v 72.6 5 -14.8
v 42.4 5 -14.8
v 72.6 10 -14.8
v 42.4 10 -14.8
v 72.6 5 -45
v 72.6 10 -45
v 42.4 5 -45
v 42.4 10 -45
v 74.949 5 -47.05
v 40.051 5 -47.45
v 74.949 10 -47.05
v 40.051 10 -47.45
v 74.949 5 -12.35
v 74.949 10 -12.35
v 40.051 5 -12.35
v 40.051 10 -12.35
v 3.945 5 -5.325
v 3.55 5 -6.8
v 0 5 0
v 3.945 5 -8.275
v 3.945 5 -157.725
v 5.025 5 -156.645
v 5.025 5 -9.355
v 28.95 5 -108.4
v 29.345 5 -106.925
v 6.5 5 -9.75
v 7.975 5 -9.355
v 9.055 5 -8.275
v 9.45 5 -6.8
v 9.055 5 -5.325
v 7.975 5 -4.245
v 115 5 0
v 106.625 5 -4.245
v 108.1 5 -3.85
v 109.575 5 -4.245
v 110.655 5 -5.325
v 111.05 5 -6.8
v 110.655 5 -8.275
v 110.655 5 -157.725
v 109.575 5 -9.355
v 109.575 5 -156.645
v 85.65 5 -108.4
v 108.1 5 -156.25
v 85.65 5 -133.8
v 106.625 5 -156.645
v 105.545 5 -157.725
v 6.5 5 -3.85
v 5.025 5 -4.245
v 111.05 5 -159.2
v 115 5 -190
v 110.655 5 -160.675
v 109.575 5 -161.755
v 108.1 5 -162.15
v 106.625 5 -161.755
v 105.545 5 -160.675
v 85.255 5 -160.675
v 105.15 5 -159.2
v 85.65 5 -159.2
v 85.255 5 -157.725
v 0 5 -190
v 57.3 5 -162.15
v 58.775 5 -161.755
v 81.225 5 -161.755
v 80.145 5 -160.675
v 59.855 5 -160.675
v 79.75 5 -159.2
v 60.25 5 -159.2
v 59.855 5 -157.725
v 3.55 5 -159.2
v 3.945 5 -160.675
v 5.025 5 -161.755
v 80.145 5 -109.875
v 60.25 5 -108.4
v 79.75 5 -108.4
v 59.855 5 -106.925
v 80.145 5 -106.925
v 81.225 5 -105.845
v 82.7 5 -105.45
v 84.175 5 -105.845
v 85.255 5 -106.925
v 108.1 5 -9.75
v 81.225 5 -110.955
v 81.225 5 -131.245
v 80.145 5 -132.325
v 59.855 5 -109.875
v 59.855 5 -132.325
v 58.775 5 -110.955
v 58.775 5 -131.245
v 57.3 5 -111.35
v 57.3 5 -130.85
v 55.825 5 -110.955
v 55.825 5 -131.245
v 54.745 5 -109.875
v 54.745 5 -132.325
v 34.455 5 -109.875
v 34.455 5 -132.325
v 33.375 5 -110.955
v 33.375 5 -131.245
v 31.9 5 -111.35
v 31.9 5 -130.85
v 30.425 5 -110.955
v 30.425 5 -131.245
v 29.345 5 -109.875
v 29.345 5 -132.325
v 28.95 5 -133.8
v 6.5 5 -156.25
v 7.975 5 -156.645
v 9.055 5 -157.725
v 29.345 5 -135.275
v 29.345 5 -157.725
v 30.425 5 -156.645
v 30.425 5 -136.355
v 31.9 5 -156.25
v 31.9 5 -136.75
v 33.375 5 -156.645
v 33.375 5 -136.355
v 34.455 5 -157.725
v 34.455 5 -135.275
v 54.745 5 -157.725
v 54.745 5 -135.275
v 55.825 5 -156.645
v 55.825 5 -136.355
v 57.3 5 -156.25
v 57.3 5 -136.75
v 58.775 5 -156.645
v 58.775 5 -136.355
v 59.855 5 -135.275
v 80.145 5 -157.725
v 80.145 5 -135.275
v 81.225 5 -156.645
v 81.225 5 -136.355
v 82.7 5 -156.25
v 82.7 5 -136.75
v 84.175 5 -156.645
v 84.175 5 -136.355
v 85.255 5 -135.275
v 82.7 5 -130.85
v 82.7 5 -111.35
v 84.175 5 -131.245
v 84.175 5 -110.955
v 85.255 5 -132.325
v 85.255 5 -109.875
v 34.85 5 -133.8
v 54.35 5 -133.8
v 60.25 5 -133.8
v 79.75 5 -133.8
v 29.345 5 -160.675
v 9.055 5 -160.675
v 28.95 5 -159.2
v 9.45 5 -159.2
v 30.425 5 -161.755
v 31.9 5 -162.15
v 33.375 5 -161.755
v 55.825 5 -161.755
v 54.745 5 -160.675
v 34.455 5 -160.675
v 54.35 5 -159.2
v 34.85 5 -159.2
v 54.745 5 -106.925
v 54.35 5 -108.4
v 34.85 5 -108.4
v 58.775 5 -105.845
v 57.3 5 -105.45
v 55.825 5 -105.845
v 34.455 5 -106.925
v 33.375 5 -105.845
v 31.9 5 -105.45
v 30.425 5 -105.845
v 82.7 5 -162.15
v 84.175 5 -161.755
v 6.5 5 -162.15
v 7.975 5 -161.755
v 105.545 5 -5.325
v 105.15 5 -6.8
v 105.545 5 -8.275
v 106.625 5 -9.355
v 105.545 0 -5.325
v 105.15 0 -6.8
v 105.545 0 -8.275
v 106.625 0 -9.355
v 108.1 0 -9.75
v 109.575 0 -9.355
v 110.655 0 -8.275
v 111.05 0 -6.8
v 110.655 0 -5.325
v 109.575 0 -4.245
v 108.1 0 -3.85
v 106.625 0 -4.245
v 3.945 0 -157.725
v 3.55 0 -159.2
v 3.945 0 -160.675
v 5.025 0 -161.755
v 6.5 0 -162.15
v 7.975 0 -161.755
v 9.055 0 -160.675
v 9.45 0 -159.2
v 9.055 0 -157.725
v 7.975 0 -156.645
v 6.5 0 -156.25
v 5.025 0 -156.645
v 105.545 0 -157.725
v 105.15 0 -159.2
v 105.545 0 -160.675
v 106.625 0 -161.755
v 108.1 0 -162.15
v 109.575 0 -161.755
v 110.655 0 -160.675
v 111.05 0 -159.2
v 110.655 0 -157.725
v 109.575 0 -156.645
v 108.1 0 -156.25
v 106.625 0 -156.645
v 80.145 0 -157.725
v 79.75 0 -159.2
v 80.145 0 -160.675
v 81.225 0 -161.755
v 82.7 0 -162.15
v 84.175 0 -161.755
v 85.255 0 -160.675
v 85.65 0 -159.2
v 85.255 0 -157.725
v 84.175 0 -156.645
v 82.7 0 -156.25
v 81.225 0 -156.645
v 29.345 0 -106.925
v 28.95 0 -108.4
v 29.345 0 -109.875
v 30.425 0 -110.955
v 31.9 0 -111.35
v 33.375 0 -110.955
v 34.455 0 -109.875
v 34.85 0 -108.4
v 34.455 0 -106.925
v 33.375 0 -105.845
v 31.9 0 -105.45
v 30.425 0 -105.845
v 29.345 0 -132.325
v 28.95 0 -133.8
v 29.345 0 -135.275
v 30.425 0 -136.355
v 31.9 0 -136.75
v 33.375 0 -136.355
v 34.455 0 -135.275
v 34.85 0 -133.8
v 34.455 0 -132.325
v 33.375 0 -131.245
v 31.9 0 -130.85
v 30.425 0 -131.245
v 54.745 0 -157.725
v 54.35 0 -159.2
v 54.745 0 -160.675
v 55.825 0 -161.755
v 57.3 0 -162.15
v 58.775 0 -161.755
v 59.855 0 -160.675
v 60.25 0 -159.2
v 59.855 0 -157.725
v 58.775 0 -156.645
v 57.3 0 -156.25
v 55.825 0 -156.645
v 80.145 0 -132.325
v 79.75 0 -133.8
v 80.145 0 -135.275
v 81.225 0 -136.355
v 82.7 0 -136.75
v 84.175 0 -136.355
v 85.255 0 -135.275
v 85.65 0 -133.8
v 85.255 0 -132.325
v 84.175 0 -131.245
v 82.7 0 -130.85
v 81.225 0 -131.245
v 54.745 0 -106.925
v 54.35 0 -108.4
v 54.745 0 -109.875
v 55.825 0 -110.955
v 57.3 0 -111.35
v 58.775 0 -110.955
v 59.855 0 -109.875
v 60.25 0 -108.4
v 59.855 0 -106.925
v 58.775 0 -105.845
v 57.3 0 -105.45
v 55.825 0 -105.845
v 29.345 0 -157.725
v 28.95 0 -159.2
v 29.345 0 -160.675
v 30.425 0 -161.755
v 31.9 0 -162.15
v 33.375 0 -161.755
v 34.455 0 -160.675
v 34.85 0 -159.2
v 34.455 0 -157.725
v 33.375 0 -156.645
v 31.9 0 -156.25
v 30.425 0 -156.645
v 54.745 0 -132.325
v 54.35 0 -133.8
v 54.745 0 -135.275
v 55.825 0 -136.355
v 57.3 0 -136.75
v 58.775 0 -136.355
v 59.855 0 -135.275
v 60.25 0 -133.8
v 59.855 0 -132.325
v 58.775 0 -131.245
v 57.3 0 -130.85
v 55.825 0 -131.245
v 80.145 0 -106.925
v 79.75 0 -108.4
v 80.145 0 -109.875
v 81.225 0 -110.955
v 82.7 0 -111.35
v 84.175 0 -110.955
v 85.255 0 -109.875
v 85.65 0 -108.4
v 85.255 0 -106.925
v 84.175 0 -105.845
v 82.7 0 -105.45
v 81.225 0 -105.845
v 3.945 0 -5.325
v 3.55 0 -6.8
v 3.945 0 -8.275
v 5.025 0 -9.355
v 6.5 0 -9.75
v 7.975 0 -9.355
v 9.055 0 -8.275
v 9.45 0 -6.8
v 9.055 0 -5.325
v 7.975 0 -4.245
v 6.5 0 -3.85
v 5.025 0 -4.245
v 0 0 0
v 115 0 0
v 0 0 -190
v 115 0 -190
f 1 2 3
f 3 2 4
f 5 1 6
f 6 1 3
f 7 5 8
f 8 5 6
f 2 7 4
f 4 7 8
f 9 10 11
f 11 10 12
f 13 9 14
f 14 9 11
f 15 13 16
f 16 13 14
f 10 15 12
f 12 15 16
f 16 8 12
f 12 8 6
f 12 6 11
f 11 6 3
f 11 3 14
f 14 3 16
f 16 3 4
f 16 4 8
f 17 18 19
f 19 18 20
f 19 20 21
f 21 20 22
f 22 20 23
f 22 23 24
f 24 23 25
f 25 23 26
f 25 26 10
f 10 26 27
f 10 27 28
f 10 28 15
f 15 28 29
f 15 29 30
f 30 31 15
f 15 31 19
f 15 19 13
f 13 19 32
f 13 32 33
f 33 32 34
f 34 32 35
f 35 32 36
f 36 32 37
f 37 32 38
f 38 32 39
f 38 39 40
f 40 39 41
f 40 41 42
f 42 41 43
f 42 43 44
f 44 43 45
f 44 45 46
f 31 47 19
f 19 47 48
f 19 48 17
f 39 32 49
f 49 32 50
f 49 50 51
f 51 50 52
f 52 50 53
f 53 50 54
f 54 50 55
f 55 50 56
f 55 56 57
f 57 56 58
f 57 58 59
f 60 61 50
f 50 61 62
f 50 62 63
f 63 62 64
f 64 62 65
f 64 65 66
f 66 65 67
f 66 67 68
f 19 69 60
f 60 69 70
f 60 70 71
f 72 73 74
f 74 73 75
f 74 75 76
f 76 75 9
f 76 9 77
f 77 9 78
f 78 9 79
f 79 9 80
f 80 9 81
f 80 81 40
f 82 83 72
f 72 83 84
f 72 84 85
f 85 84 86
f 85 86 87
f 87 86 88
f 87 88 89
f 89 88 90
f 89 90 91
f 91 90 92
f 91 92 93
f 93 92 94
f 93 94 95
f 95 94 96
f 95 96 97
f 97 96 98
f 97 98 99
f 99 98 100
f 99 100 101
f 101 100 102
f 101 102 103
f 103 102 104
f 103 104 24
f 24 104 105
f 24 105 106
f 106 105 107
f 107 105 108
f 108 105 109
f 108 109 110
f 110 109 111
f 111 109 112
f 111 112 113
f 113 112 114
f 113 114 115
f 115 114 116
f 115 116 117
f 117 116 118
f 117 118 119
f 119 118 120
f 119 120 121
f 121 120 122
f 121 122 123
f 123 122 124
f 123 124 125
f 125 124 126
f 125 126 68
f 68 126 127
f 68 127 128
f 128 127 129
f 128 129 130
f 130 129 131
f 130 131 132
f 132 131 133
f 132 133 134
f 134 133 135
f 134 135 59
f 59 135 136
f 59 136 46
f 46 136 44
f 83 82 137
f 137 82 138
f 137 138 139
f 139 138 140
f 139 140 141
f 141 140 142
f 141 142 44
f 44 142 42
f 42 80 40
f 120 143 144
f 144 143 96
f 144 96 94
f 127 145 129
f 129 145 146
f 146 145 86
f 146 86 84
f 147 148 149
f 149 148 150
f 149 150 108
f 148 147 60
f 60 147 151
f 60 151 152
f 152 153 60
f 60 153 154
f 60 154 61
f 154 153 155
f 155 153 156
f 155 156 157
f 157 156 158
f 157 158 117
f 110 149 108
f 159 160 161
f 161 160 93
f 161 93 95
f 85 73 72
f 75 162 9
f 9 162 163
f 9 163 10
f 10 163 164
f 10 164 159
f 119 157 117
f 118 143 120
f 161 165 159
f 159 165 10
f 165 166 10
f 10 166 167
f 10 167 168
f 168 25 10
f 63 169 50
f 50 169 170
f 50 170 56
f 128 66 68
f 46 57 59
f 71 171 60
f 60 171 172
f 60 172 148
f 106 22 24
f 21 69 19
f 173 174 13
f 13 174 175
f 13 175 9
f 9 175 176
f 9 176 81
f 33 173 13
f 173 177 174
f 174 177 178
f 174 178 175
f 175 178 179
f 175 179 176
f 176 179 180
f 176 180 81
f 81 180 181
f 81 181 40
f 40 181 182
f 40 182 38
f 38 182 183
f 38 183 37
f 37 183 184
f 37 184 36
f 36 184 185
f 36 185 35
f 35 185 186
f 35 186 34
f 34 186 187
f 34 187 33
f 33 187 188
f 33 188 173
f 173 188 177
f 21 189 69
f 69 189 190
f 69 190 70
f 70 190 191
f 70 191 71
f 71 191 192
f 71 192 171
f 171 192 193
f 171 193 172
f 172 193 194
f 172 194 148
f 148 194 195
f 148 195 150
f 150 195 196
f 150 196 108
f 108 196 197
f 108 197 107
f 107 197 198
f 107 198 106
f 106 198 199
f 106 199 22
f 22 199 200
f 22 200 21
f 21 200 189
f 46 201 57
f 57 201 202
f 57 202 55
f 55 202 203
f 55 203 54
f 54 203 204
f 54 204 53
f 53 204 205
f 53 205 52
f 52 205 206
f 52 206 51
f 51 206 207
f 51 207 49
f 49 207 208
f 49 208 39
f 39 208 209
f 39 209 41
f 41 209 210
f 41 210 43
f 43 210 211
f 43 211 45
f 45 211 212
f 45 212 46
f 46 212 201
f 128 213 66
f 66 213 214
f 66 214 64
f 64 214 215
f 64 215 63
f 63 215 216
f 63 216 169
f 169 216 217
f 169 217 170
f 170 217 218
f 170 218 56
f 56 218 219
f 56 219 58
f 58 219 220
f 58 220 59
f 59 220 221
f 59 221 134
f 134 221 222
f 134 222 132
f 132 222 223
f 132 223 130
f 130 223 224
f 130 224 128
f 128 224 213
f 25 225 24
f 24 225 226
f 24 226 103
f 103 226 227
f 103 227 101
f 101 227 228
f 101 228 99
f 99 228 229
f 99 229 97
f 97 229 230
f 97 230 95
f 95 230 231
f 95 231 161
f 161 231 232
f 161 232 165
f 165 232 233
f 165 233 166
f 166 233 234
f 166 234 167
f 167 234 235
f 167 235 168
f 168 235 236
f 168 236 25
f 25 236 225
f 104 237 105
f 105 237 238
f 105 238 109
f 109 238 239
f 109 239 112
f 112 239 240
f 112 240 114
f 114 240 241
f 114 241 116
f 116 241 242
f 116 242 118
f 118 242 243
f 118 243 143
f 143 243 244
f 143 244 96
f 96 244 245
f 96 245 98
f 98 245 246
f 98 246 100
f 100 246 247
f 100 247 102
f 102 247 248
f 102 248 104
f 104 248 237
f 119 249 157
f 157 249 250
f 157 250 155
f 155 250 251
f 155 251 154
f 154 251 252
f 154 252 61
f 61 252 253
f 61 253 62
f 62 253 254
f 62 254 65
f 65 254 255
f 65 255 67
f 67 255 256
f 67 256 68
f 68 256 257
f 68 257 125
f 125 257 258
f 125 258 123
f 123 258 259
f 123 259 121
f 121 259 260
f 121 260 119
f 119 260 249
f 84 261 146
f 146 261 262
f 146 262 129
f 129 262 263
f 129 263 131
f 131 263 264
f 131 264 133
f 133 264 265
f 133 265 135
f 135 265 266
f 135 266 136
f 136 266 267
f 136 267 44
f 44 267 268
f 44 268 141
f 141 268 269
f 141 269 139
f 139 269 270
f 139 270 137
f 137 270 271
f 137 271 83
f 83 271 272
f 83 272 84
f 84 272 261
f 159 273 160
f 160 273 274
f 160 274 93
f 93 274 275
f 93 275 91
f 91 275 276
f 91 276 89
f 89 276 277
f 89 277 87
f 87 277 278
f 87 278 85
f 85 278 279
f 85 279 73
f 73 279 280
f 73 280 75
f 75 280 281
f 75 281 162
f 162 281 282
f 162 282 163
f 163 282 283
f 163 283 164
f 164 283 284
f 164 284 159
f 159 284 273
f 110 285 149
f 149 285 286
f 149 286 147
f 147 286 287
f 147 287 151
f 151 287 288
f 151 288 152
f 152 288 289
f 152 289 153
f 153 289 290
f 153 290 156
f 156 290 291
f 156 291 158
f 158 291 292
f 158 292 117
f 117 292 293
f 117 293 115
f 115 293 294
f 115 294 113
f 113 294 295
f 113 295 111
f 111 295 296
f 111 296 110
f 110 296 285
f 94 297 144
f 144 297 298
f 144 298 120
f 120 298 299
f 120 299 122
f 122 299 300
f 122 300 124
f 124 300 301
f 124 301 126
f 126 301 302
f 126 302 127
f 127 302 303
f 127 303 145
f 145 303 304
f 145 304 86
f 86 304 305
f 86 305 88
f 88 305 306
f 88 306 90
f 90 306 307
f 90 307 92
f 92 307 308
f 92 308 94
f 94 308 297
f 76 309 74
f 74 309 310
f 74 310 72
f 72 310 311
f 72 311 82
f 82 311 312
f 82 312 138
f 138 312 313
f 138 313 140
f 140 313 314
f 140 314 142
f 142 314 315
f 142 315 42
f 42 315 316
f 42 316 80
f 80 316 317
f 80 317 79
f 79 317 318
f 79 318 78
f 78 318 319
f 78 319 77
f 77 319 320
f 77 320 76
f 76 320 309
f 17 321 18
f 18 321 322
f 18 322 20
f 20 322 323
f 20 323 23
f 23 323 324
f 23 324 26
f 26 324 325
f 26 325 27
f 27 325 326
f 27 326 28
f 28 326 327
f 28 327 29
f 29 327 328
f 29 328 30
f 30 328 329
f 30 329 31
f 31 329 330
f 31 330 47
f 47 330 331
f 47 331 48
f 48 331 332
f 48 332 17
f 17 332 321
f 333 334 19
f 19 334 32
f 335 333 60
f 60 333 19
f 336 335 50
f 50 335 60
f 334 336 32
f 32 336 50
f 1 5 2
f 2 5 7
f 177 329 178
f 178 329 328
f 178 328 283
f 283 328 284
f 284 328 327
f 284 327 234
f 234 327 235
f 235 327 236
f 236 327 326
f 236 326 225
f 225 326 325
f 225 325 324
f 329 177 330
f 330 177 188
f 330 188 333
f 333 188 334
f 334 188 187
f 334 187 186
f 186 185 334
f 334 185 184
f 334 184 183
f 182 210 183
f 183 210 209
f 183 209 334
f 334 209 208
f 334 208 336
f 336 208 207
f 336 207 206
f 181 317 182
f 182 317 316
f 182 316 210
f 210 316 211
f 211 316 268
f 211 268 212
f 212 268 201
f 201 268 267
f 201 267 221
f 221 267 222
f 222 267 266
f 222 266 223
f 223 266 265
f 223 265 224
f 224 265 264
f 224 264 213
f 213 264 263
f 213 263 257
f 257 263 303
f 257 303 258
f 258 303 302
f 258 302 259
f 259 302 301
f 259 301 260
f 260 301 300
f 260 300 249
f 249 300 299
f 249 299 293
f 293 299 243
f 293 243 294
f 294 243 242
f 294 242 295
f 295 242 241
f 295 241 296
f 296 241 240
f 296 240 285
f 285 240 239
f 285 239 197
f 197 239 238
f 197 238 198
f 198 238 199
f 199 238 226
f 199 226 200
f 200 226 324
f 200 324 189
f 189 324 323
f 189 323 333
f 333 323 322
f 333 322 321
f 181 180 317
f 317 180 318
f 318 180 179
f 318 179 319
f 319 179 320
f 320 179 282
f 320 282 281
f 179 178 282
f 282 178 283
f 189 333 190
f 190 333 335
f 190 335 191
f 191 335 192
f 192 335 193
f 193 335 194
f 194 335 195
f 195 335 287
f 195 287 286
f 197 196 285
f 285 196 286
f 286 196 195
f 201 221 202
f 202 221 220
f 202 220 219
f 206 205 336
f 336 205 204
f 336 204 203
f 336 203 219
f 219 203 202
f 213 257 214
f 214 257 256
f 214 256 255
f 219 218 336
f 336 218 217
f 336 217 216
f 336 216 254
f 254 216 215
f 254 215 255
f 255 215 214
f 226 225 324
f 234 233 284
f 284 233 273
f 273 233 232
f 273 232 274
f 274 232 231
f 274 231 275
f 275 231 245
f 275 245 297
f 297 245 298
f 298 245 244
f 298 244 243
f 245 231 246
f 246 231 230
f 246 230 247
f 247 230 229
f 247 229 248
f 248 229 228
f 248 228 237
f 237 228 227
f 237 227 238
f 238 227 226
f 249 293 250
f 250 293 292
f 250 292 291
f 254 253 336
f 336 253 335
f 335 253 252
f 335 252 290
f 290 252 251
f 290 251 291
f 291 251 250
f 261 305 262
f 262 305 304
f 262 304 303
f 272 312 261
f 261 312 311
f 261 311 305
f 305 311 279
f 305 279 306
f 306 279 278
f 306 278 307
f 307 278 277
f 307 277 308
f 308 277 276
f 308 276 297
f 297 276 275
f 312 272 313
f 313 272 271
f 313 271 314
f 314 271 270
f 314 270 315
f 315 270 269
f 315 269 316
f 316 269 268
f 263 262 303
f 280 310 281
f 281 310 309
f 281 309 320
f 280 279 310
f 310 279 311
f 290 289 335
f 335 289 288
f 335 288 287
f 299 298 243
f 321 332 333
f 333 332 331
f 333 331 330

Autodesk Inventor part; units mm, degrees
ref_plane "YZ Plane" through (0, 0, 0) normal (1, 0, 0) x (0, 1, 0)
ref_plane "XZ Plane" through (0, 0, 0) normal (0, 1, 0) x (-1, 0, 0)
ref_plane "XY Plane" through (0, 0, 0) normal (0, 0, 1) x (1, 0, 0)
sketch "스케치1" plane through (0, 0, 0) normal (0, 1, 0) x (-1, 0, 0)
  line L0 (0, 0) -> (-115, 0)
  line L1 (-115, 0) -> (-115, -190)
  line L2 (-115, -190) -> (0, -190)
  line L3 (0, -190) -> (0, 0)
  circle A0 centre (-6.5, -6.8) radius 2.95
  line L4 (0, -95) -> (-115, -95) construction
  line L5 (-57.5, 0) -> (-57.5, -190) construction
  circle A1 centre (-6.5, -183.2) radius 2.95
  circle A2 centre (-6.5, -32.2) radius 2.95
  circle A3 centre (-6.5, -57.6) radius 2.95
  circle A4 centre (-6.5, -83) radius 2.95
  circle A5 centre (-6.5, -108.4) radius 2.95
  circle A6 centre (-6.5, -133.8) radius 2.95
  circle A7 centre (-6.5, -159.2) radius 2.95
  circle A8 centre (-31.9, -6.8) radius 2.95
  circle A9 centre (-31.9, -32.2) radius 2.95
  circle A10 centre (-31.9, -57.6) radius 2.95
  circle A11 centre (-31.9, -83) radius 2.95
  circle A12 centre (-31.9, -108.4) radius 2.95
  circle A13 centre (-31.9, -133.8) radius 2.95
  circle A14 centre (-31.9, -159.2) radius 2.95
  circle A15 centre (-57.3, -6.8) radius 2.95
  circle A16 centre (-57.3, -32.2) radius 2.95
  circle A17 centre (-57.3, -57.6) radius 2.95
  circle A18 centre (-57.3, -83) radius 2.95
  circle A19 centre (-57.3, -108.4) radius 2.95
  circle A20 centre (-57.3, -133.8) radius 2.95
  circle A21 centre (-57.3, -159.2) radius 2.95
  circle A22 centre (-82.7, -6.8) radius 2.95
  circle A23 centre (-82.7, -32.2) radius 2.95
  circle A24 centre (-82.7, -57.6) radius 2.95
  circle A25 centre (-82.7, -83) radius 2.95
  circle A26 centre (-82.7, -108.4) radius 2.95
  circle A27 centre (-82.7, -133.8) radius 2.95
  circle A28 centre (-82.7, -159.2) radius 2.95
  circle A29 centre (-108.1, -6.8) radius 2.95
  circle A30 centre (-108.1, -32.2) radius 2.95
  circle A31 centre (-108.1, -57.6) radius 2.95
  circle A32 centre (-108.1, -83) radius 2.95
  circle A33 centre (-108.1, -108.4) radius 2.95
  circle A34 centre (-108.1, -133.8) radius 2.95
  circle A35 centre (-108.1, -159.2) radius 2.95
  circle A36 centre (-133.5, -6.8) radius 2.95
  circle A37 centre (-133.5, -32.2) radius 2.95
  circle A38 centre (-133.5, -57.6) radius 2.95
  circle A39 centre (-133.5, -83) radius 2.95
  circle A40 centre (-133.5, -108.4) radius 2.95
  circle A41 centre (-133.5, -133.8) radius 2.95
  circle A42 centre (-133.5, -159.2) radius 2.95
  dimension "d0" = 190
  dimension "d1" = 115
  dimension "d2" = 6.5
  dimension "d3" = 6.8
  dimension "d4" = 5.9
  dimension "d9" = 25.4
  dimension "d12" = 25.4
extrude "돌출1" add sketch "스케치1" along normal blind 5 contours L3 L2 L1 L0 | A1 | A2 | A3 | A4 | A5 | A6 | A7 | A8 | A9 | A10 | A11 | A12 | A13 | A14 | A15 | A16 | A17 | A18 | A19 | A20 | A21 | A22 | A23 | A24 | A25 | A26 | A27 | A28 | A29 | A30 | A31 | A32 | A33 | A34 | A35
extrude "돌출2" cut sketch "스케치1" along normal blind 5 contours A12 | A13 | A14 | A19 | A20 | A21 | A26 | A27 | A28
extrude "돌출4" cut sketch "스케치1" along normal blind 5 contours A35
extrude "돌출5" cut sketch "스케치1" along normal blind 5 contours A7
sketch "스케치2" plane through (0, 5, 0) normal (0, 1, 0) x (1, 0, 0)
  circle A0 centre (57.5, 63.8) radius 2.5
  line L0 (0, 0) -> (115, 0) projected
  circle A1 centre (57.3, 133.8) radius 2.95 projected
  point P0 (57.5, 0)
  dimension "d23" = 70
  dimension "d24" = 5
extrude "돌출6" cut sketch "스케치1" along normal blind 5 contours A29
sketch "스케치3" plane through (0, 5, 0) normal (0, 1, 0) x (1, 0, 0)
  line L0 (42.4, 14.8) -> (72.6, 14.8)
  line L1 (72.6, 14.8) -> (72.6, 45)
  line L2 (72.6, 45) -> (42.4, 45)
  line L3 (42.4, 45) -> (42.4, 14.8)
  line L4 (115, 190) -> (0, 190) projected
  line L5 (40.0511, 12.35) -> (74.9489, 12.35)
  line L6 (74.9489, 12.35) -> (74.9489, 47.05)
  line L7 (74.9489, 47.05) -> (40.0511, 47.45)
  line L8 (40.0511, 47.45) -> (40.0511, 12.35)
  line L9 (0, 0) -> (115, 0) projected
  point P0 (57.5, 45)
  point P1 (57.5, 190)
  point P2 (57.5, 190)
  point P3 (57.5, 47.25)
  point P4 (57.5, 12.35)
  point P5 (40.0511, 29.9)
  point P6 (42.4, 29.9)
  dimension "d27" = 30.2
  dimension "d28" = 30.2
  dimension "d29" = 145
  dimension "d31" = 34.9
  dimension "d34" = 2.45
  dimension "d35" = 34.9
extrude "돌출7" add sketch "스케치3" along normal blind 5
properties part number "mounting_board_printed"
